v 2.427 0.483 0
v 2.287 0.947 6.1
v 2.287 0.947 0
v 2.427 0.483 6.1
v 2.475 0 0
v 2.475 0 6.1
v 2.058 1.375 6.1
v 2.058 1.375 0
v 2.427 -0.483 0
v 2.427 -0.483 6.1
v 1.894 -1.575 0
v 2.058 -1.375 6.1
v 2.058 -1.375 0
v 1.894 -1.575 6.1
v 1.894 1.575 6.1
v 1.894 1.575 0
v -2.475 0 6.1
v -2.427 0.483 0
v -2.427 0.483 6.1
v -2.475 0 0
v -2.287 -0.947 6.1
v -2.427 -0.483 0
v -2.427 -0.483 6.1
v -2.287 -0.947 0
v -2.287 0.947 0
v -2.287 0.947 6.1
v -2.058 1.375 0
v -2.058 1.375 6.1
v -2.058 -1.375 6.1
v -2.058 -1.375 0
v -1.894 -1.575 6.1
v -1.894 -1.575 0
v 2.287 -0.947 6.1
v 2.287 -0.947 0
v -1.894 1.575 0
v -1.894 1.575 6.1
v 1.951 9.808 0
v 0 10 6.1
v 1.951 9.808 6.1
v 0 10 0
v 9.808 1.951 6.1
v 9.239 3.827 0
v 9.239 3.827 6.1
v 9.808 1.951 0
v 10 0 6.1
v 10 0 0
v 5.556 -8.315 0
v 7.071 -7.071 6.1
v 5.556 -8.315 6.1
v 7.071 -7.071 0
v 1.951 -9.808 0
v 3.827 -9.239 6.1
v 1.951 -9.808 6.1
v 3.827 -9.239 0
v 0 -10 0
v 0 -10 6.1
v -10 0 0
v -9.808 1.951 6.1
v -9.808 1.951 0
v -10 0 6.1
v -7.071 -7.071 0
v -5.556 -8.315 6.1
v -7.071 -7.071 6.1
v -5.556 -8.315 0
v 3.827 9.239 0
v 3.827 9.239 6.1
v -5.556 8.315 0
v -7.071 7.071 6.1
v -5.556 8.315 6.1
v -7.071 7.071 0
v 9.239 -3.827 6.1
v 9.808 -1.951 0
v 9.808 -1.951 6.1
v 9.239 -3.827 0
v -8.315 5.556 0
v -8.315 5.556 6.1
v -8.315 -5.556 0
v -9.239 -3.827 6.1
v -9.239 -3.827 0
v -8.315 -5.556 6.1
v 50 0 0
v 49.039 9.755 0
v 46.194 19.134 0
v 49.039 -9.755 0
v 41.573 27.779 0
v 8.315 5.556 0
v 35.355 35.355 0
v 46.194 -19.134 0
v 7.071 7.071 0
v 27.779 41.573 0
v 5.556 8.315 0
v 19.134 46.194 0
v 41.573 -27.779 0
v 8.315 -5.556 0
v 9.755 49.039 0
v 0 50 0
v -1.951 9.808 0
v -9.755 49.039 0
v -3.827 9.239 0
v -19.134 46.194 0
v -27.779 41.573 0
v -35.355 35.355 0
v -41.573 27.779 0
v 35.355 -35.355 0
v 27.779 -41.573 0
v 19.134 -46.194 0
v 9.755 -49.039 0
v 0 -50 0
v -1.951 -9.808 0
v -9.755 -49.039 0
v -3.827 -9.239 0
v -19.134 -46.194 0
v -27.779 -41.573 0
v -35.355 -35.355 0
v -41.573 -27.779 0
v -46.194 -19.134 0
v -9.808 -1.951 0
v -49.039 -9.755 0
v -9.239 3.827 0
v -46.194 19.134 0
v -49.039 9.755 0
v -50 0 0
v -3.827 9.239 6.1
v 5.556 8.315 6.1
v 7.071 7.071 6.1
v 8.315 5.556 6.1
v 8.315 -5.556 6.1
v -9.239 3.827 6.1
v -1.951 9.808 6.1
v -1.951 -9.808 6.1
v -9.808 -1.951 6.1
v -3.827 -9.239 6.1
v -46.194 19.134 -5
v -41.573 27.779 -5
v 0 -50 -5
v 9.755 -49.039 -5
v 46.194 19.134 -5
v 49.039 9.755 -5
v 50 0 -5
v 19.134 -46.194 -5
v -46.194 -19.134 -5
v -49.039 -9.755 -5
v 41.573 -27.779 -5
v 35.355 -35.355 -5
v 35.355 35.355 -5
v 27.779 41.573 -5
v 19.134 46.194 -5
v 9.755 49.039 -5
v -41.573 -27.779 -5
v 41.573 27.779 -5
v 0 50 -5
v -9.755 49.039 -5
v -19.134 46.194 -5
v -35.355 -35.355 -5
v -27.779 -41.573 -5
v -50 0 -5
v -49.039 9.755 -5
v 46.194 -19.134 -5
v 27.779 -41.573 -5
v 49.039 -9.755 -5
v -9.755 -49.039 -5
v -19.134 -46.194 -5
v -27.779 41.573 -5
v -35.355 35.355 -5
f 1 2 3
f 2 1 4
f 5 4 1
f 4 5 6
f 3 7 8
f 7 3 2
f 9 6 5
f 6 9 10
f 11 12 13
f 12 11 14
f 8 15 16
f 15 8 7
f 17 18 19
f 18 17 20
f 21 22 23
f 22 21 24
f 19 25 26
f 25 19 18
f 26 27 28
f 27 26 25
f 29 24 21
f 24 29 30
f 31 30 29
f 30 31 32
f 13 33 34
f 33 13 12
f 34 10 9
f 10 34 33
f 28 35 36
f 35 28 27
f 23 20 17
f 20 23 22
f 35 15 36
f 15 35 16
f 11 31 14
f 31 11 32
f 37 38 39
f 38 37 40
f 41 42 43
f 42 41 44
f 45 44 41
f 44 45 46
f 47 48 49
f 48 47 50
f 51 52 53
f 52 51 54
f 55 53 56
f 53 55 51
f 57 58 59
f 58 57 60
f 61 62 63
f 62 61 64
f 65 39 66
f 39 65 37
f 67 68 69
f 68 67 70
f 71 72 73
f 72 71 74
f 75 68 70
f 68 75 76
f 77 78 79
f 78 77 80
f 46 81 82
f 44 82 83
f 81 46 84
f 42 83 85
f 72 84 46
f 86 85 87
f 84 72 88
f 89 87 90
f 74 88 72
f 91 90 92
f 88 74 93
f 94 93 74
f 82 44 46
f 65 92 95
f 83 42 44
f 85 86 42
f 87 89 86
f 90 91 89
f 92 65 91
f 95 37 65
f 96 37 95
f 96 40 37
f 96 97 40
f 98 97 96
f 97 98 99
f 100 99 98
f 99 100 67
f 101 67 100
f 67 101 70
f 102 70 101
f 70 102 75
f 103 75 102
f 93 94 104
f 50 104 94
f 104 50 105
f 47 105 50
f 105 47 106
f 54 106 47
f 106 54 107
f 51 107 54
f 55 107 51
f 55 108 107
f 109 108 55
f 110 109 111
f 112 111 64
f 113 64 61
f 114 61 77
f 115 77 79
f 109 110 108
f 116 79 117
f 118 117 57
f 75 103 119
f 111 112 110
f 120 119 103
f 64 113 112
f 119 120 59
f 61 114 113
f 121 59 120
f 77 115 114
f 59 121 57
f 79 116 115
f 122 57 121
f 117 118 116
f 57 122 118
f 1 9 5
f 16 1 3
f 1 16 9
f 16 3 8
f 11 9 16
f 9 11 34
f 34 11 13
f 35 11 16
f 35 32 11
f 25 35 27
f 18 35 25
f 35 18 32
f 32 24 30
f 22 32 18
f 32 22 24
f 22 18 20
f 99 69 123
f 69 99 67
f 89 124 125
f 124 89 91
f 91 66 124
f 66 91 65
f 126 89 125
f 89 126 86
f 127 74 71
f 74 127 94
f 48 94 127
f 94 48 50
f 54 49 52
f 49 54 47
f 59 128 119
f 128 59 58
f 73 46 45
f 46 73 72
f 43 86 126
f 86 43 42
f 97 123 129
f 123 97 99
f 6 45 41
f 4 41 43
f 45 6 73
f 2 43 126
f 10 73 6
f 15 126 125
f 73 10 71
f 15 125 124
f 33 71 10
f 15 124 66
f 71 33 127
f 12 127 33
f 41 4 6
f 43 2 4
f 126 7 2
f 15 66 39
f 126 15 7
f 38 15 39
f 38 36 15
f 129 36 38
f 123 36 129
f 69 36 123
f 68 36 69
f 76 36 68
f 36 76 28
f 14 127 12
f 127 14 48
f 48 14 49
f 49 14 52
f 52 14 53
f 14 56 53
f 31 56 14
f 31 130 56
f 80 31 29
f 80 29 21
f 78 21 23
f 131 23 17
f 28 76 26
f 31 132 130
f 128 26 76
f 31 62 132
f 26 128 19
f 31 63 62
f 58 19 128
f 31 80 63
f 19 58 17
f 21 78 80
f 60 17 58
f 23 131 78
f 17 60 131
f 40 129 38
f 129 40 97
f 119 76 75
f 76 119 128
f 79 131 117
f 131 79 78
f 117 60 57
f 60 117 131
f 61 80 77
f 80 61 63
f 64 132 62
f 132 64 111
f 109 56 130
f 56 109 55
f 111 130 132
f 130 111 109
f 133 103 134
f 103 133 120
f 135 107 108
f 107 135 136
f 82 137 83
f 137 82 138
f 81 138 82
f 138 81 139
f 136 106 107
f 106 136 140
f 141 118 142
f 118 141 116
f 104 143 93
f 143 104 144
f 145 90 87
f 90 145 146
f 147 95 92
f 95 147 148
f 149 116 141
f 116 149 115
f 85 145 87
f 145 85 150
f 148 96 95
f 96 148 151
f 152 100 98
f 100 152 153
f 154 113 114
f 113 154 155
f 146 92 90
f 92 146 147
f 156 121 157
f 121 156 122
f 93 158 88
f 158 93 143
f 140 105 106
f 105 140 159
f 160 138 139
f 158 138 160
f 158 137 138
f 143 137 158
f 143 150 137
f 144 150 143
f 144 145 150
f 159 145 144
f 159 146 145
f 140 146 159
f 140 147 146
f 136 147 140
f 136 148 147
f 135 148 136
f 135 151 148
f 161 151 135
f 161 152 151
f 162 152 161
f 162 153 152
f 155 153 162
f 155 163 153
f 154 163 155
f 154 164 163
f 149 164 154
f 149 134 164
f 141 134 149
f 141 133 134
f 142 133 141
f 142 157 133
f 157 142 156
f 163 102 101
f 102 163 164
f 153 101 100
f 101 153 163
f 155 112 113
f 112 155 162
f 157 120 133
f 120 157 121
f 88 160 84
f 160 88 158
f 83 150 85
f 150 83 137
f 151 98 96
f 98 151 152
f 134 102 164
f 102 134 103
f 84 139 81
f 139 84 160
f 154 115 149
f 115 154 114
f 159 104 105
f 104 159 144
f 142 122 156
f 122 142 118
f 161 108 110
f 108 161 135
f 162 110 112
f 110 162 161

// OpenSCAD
$fn = 32;

tolerance=0.25;

d = 4.7 + tolerance;
h = 6.1;
u = 0.05;
sub_h = 2.9 + tolerance;
shaft_d = 20;

plato_h = 5;
plato_d = 100;

union() {
    difference() {
        cylinder(h=h, d=shaft_d);
        
        translate([0, 0, -u]) {
            intersection() {
                cylinder(h=h + 2 * u, d=d);

                translate([0, 0, h / 2 + u]) {
                    cube([d, sub_h, h + 2 * u], center=true);
                }
            }
        }
    }

    translate([0, 0, -plato_h]) {
        cylinder(h=plato_h, d=plato_d);
    }
}
